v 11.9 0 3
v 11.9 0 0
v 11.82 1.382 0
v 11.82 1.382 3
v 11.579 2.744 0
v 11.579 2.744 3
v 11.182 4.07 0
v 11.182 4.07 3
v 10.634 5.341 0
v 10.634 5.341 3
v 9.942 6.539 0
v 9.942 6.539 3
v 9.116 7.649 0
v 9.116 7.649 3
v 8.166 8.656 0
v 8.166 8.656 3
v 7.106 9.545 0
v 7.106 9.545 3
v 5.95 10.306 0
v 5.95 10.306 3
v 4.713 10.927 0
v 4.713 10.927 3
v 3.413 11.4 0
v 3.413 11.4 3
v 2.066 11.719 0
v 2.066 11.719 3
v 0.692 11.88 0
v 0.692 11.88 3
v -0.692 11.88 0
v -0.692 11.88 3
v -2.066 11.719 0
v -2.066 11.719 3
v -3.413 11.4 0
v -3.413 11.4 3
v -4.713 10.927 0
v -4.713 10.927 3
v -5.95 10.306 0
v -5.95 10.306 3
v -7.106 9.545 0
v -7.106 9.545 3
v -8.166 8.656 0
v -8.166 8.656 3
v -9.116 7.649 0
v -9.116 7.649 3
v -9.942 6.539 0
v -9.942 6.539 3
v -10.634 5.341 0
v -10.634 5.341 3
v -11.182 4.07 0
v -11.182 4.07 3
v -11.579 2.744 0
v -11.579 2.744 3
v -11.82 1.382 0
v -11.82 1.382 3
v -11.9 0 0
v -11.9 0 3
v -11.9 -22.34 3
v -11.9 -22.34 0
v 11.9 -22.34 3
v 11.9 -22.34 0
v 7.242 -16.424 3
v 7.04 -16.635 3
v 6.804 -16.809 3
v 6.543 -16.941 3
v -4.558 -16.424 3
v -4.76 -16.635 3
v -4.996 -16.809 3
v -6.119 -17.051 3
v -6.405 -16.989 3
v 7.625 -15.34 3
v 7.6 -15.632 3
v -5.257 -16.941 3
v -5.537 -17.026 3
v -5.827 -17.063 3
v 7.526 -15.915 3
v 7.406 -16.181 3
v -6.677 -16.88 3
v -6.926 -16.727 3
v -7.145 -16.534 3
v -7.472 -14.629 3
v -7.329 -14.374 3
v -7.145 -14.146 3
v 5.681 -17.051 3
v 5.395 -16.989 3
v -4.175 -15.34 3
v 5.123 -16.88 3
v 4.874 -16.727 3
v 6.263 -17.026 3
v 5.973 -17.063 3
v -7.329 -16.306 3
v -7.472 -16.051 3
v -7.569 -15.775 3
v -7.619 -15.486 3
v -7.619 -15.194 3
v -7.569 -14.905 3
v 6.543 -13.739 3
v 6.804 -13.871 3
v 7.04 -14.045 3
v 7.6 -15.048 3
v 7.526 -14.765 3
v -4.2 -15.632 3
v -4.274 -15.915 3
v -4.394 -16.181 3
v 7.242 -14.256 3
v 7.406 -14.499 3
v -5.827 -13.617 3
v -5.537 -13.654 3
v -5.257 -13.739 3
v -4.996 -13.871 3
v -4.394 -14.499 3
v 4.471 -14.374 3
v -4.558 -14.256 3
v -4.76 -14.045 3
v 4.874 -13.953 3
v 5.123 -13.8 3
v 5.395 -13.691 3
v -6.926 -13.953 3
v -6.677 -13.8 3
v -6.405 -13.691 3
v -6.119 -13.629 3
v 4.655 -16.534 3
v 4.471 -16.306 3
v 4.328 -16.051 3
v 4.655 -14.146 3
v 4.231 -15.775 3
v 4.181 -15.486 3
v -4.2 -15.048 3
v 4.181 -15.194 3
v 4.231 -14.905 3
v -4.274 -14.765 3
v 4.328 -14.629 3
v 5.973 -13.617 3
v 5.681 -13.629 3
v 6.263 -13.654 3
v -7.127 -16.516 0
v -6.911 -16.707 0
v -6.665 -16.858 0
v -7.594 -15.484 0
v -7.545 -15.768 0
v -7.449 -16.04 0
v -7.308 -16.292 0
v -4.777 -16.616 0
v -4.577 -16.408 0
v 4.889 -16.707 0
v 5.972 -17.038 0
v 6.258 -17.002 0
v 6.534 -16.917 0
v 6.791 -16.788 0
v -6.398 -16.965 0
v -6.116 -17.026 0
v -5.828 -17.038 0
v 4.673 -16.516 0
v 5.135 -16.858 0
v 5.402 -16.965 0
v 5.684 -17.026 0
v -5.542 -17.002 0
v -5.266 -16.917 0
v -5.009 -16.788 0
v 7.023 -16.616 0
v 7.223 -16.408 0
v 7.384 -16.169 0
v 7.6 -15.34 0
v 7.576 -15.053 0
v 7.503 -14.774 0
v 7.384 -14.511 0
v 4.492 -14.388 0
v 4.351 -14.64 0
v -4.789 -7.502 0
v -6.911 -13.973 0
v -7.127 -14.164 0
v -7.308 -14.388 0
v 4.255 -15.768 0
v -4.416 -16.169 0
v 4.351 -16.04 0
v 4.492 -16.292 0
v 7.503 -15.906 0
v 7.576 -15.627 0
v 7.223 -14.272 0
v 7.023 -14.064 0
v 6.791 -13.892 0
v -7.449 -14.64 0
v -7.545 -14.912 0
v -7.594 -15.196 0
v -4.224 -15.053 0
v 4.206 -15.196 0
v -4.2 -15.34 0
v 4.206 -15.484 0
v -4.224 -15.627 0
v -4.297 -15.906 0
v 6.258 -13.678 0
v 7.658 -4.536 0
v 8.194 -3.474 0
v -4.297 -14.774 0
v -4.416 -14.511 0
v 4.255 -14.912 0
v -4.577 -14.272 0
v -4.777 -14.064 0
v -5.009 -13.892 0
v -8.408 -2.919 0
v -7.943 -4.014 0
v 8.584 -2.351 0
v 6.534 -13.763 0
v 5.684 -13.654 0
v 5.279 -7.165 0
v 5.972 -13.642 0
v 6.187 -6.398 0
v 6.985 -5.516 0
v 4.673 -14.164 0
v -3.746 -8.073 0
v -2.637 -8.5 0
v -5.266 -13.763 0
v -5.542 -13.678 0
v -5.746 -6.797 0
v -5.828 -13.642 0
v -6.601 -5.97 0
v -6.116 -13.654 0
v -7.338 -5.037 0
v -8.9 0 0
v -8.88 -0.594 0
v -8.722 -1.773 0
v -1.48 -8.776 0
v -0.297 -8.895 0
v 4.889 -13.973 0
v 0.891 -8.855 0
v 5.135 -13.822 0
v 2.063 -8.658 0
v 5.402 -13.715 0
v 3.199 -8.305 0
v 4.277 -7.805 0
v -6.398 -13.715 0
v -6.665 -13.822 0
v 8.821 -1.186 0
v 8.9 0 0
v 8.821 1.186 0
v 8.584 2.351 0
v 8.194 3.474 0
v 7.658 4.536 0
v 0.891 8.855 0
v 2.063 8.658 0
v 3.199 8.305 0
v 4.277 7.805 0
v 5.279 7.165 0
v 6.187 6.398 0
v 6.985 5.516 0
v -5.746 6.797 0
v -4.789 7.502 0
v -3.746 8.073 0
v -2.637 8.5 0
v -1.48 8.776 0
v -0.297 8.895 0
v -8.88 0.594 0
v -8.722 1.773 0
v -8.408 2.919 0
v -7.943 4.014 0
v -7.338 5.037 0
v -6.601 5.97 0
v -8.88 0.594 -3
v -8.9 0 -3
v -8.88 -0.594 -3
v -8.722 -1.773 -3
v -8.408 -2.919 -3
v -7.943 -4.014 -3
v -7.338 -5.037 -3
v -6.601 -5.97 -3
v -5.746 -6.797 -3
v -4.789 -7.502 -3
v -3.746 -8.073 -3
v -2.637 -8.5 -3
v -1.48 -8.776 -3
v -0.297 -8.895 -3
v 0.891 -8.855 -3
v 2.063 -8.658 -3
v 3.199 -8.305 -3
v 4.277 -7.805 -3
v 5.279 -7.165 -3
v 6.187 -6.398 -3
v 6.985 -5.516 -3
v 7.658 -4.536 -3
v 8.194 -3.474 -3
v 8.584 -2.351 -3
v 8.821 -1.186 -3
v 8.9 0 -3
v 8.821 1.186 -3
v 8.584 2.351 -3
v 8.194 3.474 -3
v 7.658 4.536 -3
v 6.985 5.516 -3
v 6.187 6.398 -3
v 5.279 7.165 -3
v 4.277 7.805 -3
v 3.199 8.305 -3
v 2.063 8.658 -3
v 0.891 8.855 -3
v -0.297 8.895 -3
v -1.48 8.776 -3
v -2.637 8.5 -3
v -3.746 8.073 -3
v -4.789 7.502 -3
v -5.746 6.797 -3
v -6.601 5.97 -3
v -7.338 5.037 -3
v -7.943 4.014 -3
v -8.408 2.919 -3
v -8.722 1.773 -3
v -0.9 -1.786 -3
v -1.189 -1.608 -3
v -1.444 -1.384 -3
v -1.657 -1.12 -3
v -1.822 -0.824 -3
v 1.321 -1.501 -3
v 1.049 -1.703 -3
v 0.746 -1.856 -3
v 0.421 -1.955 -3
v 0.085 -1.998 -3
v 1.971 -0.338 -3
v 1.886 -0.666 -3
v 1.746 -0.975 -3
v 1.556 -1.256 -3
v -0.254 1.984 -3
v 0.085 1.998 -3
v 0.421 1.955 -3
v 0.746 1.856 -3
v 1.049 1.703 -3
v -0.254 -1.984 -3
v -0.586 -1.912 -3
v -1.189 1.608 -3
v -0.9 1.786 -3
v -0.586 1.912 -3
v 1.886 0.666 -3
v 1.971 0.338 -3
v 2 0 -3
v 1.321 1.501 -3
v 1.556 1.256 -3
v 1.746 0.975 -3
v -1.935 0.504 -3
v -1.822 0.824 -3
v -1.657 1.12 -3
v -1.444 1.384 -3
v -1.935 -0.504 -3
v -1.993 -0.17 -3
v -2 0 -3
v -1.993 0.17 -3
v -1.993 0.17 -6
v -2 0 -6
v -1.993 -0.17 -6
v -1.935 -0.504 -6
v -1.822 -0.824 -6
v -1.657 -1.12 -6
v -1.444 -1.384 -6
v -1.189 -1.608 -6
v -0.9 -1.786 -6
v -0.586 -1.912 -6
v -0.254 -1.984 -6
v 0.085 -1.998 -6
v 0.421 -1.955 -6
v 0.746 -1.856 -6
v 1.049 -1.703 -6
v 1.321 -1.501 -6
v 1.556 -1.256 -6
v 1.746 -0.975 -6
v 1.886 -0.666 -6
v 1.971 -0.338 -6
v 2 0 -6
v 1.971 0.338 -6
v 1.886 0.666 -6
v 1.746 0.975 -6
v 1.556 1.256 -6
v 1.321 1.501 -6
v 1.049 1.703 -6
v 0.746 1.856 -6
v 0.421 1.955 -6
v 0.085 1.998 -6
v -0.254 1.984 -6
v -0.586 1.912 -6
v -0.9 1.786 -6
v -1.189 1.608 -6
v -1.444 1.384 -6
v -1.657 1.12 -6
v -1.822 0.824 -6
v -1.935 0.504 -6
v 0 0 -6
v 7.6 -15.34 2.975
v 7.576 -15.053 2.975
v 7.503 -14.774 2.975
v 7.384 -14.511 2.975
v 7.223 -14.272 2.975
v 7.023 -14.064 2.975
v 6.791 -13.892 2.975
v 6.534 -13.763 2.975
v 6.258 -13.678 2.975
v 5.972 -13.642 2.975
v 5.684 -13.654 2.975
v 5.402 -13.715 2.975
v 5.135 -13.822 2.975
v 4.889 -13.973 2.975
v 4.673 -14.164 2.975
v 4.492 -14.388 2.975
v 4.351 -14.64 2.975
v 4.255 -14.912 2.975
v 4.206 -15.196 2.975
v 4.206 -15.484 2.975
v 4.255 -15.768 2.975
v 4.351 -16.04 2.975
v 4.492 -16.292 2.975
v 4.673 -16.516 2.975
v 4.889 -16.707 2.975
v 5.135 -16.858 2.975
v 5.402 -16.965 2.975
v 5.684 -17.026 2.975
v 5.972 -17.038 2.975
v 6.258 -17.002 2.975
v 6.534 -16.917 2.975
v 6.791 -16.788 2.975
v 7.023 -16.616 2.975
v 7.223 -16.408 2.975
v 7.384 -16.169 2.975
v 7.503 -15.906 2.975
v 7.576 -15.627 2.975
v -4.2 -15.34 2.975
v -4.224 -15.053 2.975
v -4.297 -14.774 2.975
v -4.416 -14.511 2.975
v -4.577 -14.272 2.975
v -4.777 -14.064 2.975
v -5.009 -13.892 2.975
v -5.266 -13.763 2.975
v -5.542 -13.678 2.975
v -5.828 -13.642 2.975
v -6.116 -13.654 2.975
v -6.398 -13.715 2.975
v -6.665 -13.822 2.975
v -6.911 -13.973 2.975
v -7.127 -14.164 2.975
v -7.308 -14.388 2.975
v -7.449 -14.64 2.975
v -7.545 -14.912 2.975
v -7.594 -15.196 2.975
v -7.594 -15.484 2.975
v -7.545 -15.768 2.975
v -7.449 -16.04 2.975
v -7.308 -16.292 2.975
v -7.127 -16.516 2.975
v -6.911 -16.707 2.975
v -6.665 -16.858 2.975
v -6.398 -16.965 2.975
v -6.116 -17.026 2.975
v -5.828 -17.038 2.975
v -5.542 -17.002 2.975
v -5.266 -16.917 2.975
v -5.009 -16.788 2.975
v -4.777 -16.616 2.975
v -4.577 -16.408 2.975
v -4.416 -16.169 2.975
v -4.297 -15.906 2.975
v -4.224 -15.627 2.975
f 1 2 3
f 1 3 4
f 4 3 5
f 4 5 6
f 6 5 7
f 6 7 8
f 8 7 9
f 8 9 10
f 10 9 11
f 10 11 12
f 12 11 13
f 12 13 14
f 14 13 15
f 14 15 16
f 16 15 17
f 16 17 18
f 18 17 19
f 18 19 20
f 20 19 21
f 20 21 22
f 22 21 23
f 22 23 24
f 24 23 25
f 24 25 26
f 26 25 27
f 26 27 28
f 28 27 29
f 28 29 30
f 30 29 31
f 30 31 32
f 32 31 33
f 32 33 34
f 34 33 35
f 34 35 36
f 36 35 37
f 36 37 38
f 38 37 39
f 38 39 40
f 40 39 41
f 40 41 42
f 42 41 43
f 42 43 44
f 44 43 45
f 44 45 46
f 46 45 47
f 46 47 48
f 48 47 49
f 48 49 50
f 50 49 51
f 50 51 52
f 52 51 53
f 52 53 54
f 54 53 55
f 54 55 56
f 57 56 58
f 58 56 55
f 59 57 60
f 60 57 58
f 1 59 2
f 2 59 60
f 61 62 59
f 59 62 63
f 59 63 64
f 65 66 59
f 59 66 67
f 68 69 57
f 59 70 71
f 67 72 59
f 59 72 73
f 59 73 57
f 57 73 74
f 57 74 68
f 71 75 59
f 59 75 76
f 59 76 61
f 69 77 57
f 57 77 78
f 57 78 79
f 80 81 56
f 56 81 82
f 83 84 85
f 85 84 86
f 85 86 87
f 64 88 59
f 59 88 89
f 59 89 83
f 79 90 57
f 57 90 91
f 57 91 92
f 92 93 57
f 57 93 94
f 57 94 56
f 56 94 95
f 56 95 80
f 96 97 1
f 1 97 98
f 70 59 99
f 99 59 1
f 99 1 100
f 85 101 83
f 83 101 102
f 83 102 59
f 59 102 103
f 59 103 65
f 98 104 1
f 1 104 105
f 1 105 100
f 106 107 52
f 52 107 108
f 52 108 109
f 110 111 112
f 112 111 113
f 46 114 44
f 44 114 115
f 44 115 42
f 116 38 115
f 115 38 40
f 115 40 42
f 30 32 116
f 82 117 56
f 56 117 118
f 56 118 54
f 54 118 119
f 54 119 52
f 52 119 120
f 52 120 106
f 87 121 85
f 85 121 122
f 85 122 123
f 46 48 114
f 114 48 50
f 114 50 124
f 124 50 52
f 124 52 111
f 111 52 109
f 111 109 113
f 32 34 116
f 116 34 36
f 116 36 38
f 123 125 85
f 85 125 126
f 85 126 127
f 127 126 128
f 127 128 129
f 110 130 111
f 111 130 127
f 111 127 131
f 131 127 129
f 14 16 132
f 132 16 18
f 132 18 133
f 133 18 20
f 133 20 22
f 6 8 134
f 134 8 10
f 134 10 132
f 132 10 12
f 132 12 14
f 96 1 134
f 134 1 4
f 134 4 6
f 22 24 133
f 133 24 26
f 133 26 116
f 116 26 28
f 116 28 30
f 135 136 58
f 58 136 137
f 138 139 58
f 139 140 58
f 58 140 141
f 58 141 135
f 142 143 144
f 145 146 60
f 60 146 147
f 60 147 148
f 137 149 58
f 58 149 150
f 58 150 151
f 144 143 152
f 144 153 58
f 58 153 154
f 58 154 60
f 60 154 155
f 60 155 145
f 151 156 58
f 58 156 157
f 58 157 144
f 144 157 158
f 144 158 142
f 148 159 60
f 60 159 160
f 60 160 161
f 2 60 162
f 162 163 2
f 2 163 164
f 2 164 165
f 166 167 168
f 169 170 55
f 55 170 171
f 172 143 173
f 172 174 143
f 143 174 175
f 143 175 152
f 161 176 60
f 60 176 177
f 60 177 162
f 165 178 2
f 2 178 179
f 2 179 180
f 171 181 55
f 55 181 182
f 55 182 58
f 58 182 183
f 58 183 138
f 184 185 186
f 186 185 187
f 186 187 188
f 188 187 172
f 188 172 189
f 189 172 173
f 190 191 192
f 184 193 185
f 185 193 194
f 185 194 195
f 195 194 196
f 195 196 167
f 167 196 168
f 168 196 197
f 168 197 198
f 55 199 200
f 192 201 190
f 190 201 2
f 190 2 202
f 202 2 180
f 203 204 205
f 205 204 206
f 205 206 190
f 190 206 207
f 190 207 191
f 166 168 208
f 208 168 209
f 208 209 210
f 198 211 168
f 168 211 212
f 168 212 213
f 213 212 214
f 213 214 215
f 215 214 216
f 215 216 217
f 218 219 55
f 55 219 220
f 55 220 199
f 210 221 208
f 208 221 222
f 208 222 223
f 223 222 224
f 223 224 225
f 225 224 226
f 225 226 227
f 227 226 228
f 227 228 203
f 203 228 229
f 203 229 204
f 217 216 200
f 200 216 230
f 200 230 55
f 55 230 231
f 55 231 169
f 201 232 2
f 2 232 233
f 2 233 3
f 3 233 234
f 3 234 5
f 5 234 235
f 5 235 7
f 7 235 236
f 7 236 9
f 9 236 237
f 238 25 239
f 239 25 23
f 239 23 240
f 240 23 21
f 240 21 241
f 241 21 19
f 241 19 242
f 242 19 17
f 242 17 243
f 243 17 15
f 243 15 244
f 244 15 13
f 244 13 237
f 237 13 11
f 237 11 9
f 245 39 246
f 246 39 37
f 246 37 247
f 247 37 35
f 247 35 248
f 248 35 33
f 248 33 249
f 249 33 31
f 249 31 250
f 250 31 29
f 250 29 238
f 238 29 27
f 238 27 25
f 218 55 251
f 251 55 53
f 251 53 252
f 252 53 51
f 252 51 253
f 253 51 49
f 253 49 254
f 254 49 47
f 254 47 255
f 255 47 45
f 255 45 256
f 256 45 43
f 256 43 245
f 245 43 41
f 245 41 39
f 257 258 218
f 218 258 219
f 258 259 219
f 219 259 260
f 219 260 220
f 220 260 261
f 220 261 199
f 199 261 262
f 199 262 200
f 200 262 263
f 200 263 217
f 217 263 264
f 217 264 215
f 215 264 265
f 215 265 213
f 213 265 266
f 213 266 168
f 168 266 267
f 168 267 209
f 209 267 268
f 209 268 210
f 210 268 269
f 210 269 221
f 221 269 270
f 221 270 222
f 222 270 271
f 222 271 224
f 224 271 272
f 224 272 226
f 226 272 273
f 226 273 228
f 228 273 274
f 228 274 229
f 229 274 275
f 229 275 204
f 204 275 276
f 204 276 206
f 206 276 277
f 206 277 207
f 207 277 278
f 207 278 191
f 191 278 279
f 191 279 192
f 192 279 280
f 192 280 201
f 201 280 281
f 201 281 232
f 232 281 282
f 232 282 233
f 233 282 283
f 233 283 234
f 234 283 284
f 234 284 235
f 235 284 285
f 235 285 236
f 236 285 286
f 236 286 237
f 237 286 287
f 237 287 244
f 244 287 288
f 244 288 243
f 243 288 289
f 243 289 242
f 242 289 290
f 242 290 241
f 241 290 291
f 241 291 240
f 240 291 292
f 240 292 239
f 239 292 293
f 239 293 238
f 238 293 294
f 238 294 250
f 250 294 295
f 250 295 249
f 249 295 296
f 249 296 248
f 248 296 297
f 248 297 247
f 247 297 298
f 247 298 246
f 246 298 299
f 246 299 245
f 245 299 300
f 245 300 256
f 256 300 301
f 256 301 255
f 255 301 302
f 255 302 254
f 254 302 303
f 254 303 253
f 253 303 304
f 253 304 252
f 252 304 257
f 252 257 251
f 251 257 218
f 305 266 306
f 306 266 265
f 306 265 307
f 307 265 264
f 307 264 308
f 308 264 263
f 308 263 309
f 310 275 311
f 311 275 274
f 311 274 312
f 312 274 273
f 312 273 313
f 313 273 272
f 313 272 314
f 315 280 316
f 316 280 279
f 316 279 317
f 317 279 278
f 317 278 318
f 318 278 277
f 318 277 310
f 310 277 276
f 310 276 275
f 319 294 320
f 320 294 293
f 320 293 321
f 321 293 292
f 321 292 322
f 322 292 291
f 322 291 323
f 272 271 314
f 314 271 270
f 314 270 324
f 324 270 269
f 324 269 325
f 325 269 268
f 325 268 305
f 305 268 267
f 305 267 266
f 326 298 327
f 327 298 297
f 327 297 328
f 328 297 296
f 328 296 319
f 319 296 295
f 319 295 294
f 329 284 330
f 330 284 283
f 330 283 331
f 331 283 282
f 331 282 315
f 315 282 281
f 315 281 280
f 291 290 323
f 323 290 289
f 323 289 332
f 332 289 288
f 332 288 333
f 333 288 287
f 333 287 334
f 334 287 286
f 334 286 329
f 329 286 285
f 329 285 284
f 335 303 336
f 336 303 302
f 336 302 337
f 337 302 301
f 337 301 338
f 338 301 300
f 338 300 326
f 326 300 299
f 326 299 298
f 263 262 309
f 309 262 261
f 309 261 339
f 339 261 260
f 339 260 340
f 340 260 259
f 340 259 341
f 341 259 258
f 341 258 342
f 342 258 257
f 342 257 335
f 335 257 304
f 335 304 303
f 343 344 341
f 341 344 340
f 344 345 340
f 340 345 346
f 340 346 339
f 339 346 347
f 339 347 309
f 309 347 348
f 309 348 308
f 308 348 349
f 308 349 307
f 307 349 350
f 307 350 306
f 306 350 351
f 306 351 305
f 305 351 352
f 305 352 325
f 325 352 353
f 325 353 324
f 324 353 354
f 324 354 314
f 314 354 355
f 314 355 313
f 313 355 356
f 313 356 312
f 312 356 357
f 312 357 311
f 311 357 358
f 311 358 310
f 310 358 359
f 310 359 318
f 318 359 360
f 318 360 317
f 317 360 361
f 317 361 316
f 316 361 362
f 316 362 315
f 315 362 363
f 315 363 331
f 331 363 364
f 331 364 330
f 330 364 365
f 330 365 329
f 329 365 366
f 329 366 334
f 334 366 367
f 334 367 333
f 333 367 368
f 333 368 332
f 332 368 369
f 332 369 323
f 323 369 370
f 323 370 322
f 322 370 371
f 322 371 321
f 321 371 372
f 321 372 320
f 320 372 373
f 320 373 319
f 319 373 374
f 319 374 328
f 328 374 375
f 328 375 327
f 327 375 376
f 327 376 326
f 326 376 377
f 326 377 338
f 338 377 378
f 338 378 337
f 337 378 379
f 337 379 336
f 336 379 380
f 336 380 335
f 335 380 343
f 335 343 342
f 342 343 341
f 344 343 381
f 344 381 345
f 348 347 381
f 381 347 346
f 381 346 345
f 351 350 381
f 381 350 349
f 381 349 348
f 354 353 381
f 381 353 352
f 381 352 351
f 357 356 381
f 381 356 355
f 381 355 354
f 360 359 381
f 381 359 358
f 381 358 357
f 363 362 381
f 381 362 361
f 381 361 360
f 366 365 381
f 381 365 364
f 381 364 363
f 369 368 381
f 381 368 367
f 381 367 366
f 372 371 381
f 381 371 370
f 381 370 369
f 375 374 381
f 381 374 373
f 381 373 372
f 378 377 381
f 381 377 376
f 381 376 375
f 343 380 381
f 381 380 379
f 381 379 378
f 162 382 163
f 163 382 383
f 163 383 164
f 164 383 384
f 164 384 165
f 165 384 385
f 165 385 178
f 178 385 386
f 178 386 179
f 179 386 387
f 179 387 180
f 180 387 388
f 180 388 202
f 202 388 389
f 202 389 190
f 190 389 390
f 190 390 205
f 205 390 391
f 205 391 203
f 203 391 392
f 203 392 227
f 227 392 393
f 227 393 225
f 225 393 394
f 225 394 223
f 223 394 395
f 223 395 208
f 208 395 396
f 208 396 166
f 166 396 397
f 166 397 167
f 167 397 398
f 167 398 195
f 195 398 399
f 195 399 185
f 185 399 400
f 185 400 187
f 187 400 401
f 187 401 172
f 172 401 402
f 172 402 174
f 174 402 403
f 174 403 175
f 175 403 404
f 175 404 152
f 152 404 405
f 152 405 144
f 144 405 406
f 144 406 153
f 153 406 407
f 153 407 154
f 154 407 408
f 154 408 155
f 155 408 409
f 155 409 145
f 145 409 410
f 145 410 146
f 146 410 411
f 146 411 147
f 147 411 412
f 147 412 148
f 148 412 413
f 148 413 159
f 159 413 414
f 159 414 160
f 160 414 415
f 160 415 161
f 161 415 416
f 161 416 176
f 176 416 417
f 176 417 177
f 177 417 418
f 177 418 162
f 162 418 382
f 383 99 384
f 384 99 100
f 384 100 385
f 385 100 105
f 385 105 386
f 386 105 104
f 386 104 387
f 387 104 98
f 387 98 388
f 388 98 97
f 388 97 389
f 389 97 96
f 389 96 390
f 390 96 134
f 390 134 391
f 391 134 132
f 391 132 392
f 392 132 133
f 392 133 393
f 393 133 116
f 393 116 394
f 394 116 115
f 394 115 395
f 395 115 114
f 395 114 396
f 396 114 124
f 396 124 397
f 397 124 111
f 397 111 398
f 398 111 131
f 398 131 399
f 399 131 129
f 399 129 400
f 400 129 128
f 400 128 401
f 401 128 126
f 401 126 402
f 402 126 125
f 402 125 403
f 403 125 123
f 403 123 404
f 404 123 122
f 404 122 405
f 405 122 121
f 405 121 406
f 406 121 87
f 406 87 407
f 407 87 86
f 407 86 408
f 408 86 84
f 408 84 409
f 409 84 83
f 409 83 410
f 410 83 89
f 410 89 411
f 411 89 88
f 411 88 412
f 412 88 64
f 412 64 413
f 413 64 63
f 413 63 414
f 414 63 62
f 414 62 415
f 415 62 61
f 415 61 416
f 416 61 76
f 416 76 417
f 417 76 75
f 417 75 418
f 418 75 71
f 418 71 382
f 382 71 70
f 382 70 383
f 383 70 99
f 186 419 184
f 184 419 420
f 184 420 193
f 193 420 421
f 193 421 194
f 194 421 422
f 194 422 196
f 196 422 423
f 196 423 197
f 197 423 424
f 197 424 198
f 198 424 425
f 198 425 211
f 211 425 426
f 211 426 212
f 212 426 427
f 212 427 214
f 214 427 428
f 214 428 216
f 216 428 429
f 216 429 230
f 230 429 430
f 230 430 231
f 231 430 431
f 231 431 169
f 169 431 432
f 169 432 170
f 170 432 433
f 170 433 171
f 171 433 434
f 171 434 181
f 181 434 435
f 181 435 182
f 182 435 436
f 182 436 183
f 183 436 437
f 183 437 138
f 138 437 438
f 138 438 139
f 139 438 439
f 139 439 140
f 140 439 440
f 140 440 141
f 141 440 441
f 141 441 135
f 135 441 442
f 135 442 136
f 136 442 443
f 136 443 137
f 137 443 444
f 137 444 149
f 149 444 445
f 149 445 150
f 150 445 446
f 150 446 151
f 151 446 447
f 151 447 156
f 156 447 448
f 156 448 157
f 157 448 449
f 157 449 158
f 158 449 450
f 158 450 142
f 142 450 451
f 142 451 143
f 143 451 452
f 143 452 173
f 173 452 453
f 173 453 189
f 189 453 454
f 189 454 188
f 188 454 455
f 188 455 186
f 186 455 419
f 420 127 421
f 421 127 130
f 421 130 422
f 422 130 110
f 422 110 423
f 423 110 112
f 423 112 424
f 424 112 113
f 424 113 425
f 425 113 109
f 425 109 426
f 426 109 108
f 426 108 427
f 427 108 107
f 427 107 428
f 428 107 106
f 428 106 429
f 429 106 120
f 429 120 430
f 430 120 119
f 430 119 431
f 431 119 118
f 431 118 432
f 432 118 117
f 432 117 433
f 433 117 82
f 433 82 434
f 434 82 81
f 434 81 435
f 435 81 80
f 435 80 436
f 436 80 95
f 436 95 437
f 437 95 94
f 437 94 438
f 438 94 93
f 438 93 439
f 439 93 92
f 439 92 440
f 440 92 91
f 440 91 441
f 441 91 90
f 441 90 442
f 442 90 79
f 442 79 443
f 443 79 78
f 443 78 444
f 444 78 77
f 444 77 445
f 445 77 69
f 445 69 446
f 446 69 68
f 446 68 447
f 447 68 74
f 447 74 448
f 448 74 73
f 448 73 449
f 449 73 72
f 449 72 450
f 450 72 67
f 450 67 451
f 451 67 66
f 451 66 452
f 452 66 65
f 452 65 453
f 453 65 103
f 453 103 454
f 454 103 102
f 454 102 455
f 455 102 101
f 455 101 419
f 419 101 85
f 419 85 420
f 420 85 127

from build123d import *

# Parameters (mm, degrees)
BOSS_EXTRUDE1_DEPTH            = 3
SKETCH2_R                      = 8.9
BOSS_EXTRUDE2_DEPTH            = 3
SKETCH3_R                      = 2
BOSS_EXTRUDE3_DEPTH            = 3
M3_CLEARANCE_HOLE1_D           = 3.4
M3_CLEARANCE_HOLE1_CSINK_D     = 3.45
M3_CLEARANCE_HOLE1_CSINK_ANGLE = 90


with BuildPart() as part:
    # Sketch1 → Boss-Extrude1 (new body)
    with BuildSketch(Plane.XY):
        with BuildLine():
            Line((-11.9, 0), (-11.9, -22.34))
            Line((-11.9, -22.34), (11.9, -22.34))
            Line((11.9, -22.34), (11.9, 0))
            ThreePointArc((11.9, 0), (0, 11.9), (-11.9, 0))
        make_face()
    extrude(amount=BOSS_EXTRUDE1_DEPTH)

    # Sketch2 → Boss-Extrude2 (add)
    with BuildSketch(Plane(origin=(0, 0, 0), x_dir=(-1, 0, 0), z_dir=(0, 0, -1))):
        Circle(SKETCH2_R)
    extrude(amount=BOSS_EXTRUDE2_DEPTH)

    # Sketch3 → Boss-Extrude3 (add)
    with BuildSketch(Plane(origin=(0, 0, -3), x_dir=(-1, 0, 0), z_dir=(0, 0, -1))):
        Circle(SKETCH3_R)
    extrude(amount=BOSS_EXTRUDE3_DEPTH)

    # M3 Clearance Hole1 (through all)
    with Locations(Plane(origin=(-5.9, -15.34, 3), x_dir=(1, 0, 0), z_dir=(0, 0, 1))):
        with Locations((0, 0), (11.8, 0)):
            CounterSinkHole(M3_CLEARANCE_HOLE1_D / 2, M3_CLEARANCE_HOLE1_CSINK_D / 2, counter_sink_angle=M3_CLEARANCE_HOLE1_CSINK_ANGLE)


solid = part.part
